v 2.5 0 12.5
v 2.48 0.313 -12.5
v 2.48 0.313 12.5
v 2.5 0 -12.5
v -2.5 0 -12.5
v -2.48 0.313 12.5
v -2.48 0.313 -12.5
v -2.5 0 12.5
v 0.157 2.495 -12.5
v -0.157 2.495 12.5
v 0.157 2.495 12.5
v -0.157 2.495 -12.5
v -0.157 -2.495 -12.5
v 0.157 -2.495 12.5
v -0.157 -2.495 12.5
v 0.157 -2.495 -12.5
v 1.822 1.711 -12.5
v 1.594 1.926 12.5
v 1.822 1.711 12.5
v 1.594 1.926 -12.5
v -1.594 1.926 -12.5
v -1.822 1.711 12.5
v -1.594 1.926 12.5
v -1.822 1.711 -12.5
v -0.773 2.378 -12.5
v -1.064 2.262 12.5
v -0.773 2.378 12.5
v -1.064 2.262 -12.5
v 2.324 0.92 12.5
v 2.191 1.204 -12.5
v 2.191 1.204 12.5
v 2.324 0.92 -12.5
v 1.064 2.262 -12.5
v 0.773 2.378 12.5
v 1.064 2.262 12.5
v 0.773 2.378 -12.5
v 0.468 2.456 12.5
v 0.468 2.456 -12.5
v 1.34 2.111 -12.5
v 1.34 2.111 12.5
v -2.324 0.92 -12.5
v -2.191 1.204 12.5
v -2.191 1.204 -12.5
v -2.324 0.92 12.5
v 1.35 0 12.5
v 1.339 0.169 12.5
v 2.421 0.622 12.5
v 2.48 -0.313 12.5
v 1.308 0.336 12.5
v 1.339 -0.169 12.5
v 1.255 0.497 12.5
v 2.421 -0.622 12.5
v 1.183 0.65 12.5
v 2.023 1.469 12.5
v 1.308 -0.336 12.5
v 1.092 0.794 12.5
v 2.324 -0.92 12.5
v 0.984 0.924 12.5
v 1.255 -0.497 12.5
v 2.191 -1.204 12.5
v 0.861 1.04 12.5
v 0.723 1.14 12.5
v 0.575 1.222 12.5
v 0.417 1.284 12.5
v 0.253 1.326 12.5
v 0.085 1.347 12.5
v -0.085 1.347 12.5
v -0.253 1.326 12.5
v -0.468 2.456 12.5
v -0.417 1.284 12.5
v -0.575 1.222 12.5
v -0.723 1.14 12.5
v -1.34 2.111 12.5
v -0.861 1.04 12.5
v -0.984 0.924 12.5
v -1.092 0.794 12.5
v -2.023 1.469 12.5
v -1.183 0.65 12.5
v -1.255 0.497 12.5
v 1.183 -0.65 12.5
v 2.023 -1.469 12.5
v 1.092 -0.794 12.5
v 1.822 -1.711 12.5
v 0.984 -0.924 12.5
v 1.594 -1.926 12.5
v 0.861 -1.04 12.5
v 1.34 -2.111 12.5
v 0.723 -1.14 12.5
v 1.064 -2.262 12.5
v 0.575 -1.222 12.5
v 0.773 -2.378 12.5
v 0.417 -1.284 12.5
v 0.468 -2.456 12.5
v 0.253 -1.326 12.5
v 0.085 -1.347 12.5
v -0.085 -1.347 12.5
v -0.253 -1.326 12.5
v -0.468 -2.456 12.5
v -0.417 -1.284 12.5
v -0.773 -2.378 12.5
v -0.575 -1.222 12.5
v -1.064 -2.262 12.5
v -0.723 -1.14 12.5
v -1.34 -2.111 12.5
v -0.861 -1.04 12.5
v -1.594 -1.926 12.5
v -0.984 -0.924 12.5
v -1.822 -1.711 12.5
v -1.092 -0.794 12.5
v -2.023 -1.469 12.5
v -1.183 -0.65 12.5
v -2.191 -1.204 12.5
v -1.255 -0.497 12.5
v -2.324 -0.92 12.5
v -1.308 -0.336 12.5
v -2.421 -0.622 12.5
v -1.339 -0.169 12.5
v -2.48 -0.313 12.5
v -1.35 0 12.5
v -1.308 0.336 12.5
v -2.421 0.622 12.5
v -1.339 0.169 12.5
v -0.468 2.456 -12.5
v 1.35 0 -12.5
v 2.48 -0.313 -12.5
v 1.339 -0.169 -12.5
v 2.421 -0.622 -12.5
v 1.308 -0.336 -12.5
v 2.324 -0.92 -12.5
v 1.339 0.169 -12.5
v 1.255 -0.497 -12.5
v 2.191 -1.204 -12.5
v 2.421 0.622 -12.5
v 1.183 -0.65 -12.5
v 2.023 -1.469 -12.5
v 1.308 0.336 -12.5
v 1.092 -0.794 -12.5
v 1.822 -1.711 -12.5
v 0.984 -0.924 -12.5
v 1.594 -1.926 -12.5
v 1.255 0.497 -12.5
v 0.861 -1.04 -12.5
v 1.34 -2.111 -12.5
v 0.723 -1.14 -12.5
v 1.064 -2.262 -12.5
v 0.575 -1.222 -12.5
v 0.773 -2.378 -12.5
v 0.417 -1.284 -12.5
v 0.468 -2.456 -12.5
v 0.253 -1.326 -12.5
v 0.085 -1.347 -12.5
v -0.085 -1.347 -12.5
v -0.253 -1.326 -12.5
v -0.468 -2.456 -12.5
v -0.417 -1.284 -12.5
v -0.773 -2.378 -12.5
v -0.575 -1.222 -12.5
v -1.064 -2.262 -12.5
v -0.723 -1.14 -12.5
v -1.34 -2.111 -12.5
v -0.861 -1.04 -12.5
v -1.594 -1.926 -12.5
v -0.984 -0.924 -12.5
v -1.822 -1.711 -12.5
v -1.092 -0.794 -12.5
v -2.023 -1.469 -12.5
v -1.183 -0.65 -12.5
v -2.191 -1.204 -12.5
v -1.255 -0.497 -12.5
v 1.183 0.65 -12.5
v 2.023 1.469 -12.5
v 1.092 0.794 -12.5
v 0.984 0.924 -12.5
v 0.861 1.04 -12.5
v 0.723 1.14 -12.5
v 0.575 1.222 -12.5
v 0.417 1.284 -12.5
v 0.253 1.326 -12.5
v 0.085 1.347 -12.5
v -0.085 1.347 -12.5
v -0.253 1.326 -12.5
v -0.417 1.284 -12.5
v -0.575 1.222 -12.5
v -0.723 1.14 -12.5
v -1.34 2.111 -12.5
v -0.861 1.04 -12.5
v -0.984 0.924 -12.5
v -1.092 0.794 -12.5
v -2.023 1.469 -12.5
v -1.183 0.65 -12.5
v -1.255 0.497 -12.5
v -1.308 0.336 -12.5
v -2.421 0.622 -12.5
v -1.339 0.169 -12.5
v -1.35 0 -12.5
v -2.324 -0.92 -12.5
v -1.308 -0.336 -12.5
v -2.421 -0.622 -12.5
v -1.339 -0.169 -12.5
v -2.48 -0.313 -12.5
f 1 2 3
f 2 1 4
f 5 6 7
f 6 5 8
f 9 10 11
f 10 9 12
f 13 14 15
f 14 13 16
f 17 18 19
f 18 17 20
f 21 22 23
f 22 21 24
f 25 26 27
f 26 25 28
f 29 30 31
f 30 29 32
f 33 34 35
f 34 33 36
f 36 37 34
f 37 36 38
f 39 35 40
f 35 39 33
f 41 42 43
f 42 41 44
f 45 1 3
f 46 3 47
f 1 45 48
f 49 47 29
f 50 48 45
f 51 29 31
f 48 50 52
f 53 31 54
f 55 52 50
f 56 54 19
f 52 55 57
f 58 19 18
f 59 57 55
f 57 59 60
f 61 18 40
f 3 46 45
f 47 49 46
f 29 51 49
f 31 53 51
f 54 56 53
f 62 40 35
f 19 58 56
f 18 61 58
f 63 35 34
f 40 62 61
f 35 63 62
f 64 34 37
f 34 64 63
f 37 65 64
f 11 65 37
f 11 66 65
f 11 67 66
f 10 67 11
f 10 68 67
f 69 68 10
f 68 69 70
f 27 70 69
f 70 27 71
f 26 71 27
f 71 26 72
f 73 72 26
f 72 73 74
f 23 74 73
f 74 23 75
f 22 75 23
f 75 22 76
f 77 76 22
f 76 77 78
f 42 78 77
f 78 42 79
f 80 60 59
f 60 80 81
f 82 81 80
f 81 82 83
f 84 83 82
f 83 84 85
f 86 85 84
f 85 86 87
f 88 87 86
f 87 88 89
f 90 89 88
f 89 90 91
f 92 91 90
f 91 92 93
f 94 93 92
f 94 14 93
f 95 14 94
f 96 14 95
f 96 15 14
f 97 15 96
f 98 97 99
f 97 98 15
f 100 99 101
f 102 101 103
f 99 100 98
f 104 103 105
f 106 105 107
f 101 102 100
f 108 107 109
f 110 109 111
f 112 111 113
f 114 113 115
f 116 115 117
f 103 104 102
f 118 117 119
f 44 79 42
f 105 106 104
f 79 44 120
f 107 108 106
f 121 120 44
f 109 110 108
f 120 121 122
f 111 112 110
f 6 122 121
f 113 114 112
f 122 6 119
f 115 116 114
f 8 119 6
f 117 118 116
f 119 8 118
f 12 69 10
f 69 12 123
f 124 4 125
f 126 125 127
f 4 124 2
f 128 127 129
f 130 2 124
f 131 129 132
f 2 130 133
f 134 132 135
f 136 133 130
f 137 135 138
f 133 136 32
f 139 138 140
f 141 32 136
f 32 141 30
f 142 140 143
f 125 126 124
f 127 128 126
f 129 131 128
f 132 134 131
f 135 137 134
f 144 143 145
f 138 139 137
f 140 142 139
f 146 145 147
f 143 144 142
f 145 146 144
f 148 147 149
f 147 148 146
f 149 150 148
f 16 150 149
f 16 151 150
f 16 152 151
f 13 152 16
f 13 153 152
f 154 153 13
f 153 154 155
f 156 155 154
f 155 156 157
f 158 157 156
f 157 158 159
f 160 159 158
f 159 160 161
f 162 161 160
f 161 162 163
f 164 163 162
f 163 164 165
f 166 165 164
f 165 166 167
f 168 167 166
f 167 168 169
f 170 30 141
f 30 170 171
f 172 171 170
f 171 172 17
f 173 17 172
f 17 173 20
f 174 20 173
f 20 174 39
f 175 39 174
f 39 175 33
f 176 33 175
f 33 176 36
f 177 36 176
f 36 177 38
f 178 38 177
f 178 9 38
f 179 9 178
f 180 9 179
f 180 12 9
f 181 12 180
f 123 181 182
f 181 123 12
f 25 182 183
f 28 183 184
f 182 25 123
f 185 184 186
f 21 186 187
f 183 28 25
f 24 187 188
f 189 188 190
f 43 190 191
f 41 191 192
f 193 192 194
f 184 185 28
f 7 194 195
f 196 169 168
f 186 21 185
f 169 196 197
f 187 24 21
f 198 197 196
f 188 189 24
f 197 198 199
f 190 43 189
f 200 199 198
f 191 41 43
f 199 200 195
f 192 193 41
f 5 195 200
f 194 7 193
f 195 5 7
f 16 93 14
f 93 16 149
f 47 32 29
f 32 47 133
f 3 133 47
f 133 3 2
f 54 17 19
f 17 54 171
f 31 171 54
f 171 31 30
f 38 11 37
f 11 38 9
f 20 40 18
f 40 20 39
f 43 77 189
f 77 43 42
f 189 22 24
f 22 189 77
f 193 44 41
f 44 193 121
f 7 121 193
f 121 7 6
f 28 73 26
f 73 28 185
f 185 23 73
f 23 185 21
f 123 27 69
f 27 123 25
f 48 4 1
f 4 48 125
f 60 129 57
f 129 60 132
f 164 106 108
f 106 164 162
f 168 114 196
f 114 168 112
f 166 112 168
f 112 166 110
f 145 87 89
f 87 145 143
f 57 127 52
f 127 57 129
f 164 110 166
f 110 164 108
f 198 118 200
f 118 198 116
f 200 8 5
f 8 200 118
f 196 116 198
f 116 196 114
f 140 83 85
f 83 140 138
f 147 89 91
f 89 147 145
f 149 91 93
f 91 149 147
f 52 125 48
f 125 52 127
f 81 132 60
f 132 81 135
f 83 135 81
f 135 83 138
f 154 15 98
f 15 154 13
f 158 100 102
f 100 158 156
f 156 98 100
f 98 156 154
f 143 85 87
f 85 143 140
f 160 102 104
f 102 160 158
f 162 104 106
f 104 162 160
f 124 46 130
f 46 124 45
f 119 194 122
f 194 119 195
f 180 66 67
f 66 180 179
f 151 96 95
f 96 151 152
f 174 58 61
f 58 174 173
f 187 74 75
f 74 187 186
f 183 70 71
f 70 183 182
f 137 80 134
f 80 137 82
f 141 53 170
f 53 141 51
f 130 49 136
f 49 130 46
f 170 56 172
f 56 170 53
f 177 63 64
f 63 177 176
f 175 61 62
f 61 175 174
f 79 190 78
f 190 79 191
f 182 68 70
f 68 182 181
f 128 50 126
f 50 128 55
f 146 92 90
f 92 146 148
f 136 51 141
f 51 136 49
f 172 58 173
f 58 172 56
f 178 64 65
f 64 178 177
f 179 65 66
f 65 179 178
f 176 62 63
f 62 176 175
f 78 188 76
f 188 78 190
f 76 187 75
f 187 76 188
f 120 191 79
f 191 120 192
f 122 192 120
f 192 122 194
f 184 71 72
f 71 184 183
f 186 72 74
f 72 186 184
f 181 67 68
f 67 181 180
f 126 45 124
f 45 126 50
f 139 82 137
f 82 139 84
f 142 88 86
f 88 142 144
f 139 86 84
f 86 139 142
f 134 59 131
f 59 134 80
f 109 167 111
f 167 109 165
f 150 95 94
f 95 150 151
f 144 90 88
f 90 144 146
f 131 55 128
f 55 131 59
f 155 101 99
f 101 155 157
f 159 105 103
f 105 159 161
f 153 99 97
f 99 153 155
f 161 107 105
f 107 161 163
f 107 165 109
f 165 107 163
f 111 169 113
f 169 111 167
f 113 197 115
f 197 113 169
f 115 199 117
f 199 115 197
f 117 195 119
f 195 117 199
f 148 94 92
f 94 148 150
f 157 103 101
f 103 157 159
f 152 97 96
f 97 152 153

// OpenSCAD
$fn = 50;


difference() {
	union() {
		translate(v = [0, 0, -12.5000000000]) {
			cylinder(h = 25, r = 2.5000000000);
		}
	}
	union() {
		translate(v = [0, 0, -100.0000000000]) {
			cylinder(h = 200, r = 1.3500000000);
		}
	}
}
